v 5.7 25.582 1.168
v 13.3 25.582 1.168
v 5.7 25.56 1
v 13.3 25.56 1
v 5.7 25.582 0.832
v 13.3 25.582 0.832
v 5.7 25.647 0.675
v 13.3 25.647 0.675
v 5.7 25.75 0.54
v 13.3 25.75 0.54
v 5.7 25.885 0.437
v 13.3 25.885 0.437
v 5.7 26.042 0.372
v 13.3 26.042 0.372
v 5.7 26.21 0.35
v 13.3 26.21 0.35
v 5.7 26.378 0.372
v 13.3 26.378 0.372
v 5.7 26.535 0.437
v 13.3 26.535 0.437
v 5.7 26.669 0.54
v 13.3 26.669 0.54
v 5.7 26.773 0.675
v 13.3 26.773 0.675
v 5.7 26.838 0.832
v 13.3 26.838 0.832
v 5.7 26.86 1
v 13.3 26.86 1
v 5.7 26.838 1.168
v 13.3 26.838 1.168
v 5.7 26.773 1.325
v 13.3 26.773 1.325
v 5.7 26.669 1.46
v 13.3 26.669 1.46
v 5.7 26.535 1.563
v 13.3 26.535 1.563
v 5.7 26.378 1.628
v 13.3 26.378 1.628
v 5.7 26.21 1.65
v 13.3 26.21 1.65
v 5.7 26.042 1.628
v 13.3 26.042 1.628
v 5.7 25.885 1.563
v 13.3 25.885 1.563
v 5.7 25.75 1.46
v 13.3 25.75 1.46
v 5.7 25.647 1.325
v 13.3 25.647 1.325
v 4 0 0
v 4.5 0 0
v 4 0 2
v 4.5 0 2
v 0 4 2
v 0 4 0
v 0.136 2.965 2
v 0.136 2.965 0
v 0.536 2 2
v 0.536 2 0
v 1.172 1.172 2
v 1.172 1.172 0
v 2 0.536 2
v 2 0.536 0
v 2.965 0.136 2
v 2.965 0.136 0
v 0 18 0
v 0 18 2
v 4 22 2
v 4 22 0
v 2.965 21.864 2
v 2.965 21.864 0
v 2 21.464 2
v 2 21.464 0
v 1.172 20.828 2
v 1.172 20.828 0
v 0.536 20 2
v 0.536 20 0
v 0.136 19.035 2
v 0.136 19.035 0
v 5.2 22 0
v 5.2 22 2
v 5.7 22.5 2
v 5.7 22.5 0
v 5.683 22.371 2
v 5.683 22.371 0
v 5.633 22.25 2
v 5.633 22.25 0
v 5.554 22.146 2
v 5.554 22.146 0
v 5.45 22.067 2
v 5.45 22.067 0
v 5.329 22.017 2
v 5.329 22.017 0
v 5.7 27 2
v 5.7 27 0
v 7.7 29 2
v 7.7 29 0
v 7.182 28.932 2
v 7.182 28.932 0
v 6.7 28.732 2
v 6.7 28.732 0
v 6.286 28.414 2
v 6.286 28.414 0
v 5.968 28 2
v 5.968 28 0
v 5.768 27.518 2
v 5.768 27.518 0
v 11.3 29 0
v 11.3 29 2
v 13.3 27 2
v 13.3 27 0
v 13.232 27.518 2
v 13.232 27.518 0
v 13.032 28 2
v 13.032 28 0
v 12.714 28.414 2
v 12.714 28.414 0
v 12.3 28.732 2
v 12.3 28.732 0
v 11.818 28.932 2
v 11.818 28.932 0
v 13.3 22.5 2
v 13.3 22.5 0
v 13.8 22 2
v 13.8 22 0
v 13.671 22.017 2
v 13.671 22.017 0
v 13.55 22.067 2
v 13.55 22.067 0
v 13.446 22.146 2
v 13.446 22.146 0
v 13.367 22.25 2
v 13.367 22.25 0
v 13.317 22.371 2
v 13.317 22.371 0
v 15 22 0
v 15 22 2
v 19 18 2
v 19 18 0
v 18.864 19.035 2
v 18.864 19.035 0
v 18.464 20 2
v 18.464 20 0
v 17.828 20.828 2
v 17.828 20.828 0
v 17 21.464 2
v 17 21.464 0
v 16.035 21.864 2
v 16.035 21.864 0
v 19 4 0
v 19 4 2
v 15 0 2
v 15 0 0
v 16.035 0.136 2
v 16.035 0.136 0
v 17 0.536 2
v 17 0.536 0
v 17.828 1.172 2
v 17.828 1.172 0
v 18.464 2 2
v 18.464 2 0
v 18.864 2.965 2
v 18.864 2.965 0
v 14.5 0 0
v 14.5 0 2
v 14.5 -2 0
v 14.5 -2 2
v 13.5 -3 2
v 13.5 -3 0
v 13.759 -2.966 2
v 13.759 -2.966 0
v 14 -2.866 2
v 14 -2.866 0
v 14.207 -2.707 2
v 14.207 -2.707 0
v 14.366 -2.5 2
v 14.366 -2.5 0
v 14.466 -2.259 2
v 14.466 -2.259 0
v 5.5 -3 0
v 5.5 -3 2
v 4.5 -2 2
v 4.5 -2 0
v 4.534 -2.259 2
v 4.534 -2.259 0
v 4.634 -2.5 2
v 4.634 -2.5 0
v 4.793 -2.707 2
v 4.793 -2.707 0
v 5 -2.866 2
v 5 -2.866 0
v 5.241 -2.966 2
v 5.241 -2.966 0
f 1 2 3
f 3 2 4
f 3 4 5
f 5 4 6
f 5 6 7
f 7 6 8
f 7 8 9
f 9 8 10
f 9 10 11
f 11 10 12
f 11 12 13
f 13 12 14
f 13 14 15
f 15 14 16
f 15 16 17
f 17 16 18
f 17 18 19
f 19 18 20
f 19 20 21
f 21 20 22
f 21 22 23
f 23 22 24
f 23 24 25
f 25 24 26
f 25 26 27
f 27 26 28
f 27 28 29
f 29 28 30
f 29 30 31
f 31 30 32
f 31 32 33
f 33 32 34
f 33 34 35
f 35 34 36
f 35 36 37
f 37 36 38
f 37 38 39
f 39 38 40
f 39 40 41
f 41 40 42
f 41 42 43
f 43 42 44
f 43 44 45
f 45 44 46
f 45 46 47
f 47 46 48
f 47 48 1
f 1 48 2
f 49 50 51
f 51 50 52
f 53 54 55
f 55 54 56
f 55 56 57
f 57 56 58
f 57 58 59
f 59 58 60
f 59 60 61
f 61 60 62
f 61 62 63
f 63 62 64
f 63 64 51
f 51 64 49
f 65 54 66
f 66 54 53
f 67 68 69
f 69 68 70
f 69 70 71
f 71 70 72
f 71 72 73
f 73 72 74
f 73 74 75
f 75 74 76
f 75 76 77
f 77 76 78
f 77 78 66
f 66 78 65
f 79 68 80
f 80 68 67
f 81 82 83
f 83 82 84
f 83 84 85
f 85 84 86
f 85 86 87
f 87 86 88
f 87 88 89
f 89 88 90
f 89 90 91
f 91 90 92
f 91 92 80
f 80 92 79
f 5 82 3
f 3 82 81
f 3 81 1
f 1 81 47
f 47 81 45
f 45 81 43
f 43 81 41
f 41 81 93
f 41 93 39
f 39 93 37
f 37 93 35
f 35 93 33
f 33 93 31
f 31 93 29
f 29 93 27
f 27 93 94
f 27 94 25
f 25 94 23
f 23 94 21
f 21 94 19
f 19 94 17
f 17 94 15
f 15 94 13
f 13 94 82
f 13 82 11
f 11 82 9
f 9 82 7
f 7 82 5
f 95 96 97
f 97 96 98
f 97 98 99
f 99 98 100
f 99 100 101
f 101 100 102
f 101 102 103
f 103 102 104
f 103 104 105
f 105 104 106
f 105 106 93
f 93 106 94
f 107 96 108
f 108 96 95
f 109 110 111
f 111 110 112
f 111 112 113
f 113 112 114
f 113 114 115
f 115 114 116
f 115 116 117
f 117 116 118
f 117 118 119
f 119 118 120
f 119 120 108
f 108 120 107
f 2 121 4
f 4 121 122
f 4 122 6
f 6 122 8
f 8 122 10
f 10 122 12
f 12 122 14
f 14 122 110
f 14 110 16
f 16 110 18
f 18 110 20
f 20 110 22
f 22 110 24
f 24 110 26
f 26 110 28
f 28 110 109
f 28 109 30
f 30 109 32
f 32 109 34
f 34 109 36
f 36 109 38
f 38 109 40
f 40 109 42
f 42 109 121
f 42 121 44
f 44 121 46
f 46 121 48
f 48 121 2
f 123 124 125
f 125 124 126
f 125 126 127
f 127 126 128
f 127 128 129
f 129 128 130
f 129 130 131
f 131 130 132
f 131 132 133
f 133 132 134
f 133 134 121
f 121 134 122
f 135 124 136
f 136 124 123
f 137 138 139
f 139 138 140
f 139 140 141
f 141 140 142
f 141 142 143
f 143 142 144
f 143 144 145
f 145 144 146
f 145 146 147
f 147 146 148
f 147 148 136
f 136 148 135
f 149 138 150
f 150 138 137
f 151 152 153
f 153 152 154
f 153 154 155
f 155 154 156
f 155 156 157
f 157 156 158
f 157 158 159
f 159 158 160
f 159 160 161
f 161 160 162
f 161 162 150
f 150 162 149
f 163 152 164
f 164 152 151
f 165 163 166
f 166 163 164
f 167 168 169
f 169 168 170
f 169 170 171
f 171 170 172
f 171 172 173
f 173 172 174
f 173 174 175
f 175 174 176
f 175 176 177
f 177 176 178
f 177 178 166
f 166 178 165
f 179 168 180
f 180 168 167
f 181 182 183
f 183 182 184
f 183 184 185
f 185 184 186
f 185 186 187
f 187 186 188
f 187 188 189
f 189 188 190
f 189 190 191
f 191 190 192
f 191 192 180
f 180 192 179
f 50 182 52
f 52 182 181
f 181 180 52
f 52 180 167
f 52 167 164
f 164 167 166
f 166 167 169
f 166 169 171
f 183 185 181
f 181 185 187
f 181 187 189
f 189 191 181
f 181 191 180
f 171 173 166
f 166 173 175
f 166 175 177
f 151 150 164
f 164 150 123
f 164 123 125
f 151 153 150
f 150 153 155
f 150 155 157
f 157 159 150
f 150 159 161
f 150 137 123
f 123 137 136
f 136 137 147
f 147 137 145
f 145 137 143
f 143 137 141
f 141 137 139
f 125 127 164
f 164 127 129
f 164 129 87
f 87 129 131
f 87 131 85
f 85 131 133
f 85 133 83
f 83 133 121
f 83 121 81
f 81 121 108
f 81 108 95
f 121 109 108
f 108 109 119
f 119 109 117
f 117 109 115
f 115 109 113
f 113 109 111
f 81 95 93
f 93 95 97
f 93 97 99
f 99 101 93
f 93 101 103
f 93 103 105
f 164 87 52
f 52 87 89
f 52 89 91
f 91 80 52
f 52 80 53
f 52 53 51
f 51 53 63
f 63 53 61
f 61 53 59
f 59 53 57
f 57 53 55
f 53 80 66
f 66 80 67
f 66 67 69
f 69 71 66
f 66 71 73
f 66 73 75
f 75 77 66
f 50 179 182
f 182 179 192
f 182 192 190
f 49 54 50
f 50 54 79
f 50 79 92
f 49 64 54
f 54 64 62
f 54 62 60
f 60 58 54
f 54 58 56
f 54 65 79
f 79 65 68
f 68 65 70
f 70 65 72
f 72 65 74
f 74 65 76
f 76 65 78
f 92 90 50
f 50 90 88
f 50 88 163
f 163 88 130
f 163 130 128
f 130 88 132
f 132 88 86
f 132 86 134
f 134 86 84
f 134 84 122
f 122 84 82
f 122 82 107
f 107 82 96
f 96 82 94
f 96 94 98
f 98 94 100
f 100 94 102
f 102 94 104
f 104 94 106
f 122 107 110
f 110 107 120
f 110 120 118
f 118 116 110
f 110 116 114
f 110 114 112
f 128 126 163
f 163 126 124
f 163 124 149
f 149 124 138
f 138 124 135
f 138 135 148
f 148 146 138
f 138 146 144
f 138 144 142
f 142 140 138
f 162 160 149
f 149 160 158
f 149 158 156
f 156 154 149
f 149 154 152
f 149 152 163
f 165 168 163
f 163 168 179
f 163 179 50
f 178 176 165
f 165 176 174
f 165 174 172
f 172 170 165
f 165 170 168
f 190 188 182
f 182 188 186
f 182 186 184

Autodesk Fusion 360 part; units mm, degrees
sketch "Sketch1" plane through (0, 0, 0) normal (0, 0, 1) x (1, 0, 0)
  line L0 (9.5, 29) -> (9.5, 22) construction
  line L1 (9.5, 0) -> (9.5, -3) construction
  line L2 (9.5, -3) -> (13.5, -3)
  line L3 (9.5, -3) -> (5.5, -3)
  line L4 (4.5, -2) -> (4.5, 0)
  line L5 (14.5, -2) -> (14.5, 0)
  line L6 (15, 0) -> (14.5, 0)
  line L7 (4.5, 0) -> (4, 0)
  line L8 (13.3, 22.5) -> (13.3, 27)
  line L9 (5.7, 22.5) -> (5.7, 27)
  line L10 (11.3, 29) -> (7.7, 29)
  line L11 (19, 4) -> (19, 18)
  line L12 (0, 4) -> (0, 18)
  arc A0 (0, 4) -> (4, 0) centre (4, 4) ccw
  arc A1 (15, 0) -> (19, 4) centre (15, 4) ccw
  arc A2 (19, 18) -> (15, 22) centre (15, 18) ccw
  arc A3 (4, 22) -> (0, 18) centre (4, 18) ccw
  line L13 (15, 22) -> (13.8, 22)
  arc A4 (13.3, 22.5) -> (13.8, 22) centre (13.8, 22.5) ccw
  line L14 (4, 22) -> (5.2, 22)
  arc A5 (5.2, 22) -> (5.7, 22.5) centre (5.2, 22.5) ccw
  arc A6 (13.3, 27) -> (11.3, 29) centre (11.3, 27) ccw
  arc A7 (7.7, 29) -> (5.7, 27) centre (7.7, 27) ccw
  arc A8 (13.5, -3) -> (14.5, -2) centre (13.5, -2) ccw
  arc A9 (4.5, -2) -> (5.5, -3) centre (5.5, -2) ccw
  point P0 (19, 0)
  point P1 (13.3, 22)
  dimension "d1" = 19
  dimension "d6" = 3.8
  dimension "d8" = 4
  dimension "d9" = 4
  dimension "d10" = 4
  dimension "d11" = 4
  dimension "d12" = 0.5
  dimension "d13" = 0.5
  dimension "d14" = 2
  dimension "d15" = 2
  dimension "d16" = 1
  dimension "d17" = 1
extrude "Extrude1" add sketch "Sketch1" along normal blind 2
sketch "Sketch2" plane through (13.3, 0, 0) normal (1, 0, 0) x (0, 1, 0)
  line L0 (22.5, 0) -> (27, 0)
  line L1 (27, 0) -> (27, 2)
  line L2 (27, 2) -> (22.5, 2)
  line L3 (22.5, 2) -> (22.5, 0)
  line L4 (27, 1) -> (22.5, 1) construction
  circle A0 centre (26.2099, 1) radius 0.65
  dimension "d20" = 1.3
extrude "Extrude2" cut sketch "Sketch2" against normal blind 20 contours A0
